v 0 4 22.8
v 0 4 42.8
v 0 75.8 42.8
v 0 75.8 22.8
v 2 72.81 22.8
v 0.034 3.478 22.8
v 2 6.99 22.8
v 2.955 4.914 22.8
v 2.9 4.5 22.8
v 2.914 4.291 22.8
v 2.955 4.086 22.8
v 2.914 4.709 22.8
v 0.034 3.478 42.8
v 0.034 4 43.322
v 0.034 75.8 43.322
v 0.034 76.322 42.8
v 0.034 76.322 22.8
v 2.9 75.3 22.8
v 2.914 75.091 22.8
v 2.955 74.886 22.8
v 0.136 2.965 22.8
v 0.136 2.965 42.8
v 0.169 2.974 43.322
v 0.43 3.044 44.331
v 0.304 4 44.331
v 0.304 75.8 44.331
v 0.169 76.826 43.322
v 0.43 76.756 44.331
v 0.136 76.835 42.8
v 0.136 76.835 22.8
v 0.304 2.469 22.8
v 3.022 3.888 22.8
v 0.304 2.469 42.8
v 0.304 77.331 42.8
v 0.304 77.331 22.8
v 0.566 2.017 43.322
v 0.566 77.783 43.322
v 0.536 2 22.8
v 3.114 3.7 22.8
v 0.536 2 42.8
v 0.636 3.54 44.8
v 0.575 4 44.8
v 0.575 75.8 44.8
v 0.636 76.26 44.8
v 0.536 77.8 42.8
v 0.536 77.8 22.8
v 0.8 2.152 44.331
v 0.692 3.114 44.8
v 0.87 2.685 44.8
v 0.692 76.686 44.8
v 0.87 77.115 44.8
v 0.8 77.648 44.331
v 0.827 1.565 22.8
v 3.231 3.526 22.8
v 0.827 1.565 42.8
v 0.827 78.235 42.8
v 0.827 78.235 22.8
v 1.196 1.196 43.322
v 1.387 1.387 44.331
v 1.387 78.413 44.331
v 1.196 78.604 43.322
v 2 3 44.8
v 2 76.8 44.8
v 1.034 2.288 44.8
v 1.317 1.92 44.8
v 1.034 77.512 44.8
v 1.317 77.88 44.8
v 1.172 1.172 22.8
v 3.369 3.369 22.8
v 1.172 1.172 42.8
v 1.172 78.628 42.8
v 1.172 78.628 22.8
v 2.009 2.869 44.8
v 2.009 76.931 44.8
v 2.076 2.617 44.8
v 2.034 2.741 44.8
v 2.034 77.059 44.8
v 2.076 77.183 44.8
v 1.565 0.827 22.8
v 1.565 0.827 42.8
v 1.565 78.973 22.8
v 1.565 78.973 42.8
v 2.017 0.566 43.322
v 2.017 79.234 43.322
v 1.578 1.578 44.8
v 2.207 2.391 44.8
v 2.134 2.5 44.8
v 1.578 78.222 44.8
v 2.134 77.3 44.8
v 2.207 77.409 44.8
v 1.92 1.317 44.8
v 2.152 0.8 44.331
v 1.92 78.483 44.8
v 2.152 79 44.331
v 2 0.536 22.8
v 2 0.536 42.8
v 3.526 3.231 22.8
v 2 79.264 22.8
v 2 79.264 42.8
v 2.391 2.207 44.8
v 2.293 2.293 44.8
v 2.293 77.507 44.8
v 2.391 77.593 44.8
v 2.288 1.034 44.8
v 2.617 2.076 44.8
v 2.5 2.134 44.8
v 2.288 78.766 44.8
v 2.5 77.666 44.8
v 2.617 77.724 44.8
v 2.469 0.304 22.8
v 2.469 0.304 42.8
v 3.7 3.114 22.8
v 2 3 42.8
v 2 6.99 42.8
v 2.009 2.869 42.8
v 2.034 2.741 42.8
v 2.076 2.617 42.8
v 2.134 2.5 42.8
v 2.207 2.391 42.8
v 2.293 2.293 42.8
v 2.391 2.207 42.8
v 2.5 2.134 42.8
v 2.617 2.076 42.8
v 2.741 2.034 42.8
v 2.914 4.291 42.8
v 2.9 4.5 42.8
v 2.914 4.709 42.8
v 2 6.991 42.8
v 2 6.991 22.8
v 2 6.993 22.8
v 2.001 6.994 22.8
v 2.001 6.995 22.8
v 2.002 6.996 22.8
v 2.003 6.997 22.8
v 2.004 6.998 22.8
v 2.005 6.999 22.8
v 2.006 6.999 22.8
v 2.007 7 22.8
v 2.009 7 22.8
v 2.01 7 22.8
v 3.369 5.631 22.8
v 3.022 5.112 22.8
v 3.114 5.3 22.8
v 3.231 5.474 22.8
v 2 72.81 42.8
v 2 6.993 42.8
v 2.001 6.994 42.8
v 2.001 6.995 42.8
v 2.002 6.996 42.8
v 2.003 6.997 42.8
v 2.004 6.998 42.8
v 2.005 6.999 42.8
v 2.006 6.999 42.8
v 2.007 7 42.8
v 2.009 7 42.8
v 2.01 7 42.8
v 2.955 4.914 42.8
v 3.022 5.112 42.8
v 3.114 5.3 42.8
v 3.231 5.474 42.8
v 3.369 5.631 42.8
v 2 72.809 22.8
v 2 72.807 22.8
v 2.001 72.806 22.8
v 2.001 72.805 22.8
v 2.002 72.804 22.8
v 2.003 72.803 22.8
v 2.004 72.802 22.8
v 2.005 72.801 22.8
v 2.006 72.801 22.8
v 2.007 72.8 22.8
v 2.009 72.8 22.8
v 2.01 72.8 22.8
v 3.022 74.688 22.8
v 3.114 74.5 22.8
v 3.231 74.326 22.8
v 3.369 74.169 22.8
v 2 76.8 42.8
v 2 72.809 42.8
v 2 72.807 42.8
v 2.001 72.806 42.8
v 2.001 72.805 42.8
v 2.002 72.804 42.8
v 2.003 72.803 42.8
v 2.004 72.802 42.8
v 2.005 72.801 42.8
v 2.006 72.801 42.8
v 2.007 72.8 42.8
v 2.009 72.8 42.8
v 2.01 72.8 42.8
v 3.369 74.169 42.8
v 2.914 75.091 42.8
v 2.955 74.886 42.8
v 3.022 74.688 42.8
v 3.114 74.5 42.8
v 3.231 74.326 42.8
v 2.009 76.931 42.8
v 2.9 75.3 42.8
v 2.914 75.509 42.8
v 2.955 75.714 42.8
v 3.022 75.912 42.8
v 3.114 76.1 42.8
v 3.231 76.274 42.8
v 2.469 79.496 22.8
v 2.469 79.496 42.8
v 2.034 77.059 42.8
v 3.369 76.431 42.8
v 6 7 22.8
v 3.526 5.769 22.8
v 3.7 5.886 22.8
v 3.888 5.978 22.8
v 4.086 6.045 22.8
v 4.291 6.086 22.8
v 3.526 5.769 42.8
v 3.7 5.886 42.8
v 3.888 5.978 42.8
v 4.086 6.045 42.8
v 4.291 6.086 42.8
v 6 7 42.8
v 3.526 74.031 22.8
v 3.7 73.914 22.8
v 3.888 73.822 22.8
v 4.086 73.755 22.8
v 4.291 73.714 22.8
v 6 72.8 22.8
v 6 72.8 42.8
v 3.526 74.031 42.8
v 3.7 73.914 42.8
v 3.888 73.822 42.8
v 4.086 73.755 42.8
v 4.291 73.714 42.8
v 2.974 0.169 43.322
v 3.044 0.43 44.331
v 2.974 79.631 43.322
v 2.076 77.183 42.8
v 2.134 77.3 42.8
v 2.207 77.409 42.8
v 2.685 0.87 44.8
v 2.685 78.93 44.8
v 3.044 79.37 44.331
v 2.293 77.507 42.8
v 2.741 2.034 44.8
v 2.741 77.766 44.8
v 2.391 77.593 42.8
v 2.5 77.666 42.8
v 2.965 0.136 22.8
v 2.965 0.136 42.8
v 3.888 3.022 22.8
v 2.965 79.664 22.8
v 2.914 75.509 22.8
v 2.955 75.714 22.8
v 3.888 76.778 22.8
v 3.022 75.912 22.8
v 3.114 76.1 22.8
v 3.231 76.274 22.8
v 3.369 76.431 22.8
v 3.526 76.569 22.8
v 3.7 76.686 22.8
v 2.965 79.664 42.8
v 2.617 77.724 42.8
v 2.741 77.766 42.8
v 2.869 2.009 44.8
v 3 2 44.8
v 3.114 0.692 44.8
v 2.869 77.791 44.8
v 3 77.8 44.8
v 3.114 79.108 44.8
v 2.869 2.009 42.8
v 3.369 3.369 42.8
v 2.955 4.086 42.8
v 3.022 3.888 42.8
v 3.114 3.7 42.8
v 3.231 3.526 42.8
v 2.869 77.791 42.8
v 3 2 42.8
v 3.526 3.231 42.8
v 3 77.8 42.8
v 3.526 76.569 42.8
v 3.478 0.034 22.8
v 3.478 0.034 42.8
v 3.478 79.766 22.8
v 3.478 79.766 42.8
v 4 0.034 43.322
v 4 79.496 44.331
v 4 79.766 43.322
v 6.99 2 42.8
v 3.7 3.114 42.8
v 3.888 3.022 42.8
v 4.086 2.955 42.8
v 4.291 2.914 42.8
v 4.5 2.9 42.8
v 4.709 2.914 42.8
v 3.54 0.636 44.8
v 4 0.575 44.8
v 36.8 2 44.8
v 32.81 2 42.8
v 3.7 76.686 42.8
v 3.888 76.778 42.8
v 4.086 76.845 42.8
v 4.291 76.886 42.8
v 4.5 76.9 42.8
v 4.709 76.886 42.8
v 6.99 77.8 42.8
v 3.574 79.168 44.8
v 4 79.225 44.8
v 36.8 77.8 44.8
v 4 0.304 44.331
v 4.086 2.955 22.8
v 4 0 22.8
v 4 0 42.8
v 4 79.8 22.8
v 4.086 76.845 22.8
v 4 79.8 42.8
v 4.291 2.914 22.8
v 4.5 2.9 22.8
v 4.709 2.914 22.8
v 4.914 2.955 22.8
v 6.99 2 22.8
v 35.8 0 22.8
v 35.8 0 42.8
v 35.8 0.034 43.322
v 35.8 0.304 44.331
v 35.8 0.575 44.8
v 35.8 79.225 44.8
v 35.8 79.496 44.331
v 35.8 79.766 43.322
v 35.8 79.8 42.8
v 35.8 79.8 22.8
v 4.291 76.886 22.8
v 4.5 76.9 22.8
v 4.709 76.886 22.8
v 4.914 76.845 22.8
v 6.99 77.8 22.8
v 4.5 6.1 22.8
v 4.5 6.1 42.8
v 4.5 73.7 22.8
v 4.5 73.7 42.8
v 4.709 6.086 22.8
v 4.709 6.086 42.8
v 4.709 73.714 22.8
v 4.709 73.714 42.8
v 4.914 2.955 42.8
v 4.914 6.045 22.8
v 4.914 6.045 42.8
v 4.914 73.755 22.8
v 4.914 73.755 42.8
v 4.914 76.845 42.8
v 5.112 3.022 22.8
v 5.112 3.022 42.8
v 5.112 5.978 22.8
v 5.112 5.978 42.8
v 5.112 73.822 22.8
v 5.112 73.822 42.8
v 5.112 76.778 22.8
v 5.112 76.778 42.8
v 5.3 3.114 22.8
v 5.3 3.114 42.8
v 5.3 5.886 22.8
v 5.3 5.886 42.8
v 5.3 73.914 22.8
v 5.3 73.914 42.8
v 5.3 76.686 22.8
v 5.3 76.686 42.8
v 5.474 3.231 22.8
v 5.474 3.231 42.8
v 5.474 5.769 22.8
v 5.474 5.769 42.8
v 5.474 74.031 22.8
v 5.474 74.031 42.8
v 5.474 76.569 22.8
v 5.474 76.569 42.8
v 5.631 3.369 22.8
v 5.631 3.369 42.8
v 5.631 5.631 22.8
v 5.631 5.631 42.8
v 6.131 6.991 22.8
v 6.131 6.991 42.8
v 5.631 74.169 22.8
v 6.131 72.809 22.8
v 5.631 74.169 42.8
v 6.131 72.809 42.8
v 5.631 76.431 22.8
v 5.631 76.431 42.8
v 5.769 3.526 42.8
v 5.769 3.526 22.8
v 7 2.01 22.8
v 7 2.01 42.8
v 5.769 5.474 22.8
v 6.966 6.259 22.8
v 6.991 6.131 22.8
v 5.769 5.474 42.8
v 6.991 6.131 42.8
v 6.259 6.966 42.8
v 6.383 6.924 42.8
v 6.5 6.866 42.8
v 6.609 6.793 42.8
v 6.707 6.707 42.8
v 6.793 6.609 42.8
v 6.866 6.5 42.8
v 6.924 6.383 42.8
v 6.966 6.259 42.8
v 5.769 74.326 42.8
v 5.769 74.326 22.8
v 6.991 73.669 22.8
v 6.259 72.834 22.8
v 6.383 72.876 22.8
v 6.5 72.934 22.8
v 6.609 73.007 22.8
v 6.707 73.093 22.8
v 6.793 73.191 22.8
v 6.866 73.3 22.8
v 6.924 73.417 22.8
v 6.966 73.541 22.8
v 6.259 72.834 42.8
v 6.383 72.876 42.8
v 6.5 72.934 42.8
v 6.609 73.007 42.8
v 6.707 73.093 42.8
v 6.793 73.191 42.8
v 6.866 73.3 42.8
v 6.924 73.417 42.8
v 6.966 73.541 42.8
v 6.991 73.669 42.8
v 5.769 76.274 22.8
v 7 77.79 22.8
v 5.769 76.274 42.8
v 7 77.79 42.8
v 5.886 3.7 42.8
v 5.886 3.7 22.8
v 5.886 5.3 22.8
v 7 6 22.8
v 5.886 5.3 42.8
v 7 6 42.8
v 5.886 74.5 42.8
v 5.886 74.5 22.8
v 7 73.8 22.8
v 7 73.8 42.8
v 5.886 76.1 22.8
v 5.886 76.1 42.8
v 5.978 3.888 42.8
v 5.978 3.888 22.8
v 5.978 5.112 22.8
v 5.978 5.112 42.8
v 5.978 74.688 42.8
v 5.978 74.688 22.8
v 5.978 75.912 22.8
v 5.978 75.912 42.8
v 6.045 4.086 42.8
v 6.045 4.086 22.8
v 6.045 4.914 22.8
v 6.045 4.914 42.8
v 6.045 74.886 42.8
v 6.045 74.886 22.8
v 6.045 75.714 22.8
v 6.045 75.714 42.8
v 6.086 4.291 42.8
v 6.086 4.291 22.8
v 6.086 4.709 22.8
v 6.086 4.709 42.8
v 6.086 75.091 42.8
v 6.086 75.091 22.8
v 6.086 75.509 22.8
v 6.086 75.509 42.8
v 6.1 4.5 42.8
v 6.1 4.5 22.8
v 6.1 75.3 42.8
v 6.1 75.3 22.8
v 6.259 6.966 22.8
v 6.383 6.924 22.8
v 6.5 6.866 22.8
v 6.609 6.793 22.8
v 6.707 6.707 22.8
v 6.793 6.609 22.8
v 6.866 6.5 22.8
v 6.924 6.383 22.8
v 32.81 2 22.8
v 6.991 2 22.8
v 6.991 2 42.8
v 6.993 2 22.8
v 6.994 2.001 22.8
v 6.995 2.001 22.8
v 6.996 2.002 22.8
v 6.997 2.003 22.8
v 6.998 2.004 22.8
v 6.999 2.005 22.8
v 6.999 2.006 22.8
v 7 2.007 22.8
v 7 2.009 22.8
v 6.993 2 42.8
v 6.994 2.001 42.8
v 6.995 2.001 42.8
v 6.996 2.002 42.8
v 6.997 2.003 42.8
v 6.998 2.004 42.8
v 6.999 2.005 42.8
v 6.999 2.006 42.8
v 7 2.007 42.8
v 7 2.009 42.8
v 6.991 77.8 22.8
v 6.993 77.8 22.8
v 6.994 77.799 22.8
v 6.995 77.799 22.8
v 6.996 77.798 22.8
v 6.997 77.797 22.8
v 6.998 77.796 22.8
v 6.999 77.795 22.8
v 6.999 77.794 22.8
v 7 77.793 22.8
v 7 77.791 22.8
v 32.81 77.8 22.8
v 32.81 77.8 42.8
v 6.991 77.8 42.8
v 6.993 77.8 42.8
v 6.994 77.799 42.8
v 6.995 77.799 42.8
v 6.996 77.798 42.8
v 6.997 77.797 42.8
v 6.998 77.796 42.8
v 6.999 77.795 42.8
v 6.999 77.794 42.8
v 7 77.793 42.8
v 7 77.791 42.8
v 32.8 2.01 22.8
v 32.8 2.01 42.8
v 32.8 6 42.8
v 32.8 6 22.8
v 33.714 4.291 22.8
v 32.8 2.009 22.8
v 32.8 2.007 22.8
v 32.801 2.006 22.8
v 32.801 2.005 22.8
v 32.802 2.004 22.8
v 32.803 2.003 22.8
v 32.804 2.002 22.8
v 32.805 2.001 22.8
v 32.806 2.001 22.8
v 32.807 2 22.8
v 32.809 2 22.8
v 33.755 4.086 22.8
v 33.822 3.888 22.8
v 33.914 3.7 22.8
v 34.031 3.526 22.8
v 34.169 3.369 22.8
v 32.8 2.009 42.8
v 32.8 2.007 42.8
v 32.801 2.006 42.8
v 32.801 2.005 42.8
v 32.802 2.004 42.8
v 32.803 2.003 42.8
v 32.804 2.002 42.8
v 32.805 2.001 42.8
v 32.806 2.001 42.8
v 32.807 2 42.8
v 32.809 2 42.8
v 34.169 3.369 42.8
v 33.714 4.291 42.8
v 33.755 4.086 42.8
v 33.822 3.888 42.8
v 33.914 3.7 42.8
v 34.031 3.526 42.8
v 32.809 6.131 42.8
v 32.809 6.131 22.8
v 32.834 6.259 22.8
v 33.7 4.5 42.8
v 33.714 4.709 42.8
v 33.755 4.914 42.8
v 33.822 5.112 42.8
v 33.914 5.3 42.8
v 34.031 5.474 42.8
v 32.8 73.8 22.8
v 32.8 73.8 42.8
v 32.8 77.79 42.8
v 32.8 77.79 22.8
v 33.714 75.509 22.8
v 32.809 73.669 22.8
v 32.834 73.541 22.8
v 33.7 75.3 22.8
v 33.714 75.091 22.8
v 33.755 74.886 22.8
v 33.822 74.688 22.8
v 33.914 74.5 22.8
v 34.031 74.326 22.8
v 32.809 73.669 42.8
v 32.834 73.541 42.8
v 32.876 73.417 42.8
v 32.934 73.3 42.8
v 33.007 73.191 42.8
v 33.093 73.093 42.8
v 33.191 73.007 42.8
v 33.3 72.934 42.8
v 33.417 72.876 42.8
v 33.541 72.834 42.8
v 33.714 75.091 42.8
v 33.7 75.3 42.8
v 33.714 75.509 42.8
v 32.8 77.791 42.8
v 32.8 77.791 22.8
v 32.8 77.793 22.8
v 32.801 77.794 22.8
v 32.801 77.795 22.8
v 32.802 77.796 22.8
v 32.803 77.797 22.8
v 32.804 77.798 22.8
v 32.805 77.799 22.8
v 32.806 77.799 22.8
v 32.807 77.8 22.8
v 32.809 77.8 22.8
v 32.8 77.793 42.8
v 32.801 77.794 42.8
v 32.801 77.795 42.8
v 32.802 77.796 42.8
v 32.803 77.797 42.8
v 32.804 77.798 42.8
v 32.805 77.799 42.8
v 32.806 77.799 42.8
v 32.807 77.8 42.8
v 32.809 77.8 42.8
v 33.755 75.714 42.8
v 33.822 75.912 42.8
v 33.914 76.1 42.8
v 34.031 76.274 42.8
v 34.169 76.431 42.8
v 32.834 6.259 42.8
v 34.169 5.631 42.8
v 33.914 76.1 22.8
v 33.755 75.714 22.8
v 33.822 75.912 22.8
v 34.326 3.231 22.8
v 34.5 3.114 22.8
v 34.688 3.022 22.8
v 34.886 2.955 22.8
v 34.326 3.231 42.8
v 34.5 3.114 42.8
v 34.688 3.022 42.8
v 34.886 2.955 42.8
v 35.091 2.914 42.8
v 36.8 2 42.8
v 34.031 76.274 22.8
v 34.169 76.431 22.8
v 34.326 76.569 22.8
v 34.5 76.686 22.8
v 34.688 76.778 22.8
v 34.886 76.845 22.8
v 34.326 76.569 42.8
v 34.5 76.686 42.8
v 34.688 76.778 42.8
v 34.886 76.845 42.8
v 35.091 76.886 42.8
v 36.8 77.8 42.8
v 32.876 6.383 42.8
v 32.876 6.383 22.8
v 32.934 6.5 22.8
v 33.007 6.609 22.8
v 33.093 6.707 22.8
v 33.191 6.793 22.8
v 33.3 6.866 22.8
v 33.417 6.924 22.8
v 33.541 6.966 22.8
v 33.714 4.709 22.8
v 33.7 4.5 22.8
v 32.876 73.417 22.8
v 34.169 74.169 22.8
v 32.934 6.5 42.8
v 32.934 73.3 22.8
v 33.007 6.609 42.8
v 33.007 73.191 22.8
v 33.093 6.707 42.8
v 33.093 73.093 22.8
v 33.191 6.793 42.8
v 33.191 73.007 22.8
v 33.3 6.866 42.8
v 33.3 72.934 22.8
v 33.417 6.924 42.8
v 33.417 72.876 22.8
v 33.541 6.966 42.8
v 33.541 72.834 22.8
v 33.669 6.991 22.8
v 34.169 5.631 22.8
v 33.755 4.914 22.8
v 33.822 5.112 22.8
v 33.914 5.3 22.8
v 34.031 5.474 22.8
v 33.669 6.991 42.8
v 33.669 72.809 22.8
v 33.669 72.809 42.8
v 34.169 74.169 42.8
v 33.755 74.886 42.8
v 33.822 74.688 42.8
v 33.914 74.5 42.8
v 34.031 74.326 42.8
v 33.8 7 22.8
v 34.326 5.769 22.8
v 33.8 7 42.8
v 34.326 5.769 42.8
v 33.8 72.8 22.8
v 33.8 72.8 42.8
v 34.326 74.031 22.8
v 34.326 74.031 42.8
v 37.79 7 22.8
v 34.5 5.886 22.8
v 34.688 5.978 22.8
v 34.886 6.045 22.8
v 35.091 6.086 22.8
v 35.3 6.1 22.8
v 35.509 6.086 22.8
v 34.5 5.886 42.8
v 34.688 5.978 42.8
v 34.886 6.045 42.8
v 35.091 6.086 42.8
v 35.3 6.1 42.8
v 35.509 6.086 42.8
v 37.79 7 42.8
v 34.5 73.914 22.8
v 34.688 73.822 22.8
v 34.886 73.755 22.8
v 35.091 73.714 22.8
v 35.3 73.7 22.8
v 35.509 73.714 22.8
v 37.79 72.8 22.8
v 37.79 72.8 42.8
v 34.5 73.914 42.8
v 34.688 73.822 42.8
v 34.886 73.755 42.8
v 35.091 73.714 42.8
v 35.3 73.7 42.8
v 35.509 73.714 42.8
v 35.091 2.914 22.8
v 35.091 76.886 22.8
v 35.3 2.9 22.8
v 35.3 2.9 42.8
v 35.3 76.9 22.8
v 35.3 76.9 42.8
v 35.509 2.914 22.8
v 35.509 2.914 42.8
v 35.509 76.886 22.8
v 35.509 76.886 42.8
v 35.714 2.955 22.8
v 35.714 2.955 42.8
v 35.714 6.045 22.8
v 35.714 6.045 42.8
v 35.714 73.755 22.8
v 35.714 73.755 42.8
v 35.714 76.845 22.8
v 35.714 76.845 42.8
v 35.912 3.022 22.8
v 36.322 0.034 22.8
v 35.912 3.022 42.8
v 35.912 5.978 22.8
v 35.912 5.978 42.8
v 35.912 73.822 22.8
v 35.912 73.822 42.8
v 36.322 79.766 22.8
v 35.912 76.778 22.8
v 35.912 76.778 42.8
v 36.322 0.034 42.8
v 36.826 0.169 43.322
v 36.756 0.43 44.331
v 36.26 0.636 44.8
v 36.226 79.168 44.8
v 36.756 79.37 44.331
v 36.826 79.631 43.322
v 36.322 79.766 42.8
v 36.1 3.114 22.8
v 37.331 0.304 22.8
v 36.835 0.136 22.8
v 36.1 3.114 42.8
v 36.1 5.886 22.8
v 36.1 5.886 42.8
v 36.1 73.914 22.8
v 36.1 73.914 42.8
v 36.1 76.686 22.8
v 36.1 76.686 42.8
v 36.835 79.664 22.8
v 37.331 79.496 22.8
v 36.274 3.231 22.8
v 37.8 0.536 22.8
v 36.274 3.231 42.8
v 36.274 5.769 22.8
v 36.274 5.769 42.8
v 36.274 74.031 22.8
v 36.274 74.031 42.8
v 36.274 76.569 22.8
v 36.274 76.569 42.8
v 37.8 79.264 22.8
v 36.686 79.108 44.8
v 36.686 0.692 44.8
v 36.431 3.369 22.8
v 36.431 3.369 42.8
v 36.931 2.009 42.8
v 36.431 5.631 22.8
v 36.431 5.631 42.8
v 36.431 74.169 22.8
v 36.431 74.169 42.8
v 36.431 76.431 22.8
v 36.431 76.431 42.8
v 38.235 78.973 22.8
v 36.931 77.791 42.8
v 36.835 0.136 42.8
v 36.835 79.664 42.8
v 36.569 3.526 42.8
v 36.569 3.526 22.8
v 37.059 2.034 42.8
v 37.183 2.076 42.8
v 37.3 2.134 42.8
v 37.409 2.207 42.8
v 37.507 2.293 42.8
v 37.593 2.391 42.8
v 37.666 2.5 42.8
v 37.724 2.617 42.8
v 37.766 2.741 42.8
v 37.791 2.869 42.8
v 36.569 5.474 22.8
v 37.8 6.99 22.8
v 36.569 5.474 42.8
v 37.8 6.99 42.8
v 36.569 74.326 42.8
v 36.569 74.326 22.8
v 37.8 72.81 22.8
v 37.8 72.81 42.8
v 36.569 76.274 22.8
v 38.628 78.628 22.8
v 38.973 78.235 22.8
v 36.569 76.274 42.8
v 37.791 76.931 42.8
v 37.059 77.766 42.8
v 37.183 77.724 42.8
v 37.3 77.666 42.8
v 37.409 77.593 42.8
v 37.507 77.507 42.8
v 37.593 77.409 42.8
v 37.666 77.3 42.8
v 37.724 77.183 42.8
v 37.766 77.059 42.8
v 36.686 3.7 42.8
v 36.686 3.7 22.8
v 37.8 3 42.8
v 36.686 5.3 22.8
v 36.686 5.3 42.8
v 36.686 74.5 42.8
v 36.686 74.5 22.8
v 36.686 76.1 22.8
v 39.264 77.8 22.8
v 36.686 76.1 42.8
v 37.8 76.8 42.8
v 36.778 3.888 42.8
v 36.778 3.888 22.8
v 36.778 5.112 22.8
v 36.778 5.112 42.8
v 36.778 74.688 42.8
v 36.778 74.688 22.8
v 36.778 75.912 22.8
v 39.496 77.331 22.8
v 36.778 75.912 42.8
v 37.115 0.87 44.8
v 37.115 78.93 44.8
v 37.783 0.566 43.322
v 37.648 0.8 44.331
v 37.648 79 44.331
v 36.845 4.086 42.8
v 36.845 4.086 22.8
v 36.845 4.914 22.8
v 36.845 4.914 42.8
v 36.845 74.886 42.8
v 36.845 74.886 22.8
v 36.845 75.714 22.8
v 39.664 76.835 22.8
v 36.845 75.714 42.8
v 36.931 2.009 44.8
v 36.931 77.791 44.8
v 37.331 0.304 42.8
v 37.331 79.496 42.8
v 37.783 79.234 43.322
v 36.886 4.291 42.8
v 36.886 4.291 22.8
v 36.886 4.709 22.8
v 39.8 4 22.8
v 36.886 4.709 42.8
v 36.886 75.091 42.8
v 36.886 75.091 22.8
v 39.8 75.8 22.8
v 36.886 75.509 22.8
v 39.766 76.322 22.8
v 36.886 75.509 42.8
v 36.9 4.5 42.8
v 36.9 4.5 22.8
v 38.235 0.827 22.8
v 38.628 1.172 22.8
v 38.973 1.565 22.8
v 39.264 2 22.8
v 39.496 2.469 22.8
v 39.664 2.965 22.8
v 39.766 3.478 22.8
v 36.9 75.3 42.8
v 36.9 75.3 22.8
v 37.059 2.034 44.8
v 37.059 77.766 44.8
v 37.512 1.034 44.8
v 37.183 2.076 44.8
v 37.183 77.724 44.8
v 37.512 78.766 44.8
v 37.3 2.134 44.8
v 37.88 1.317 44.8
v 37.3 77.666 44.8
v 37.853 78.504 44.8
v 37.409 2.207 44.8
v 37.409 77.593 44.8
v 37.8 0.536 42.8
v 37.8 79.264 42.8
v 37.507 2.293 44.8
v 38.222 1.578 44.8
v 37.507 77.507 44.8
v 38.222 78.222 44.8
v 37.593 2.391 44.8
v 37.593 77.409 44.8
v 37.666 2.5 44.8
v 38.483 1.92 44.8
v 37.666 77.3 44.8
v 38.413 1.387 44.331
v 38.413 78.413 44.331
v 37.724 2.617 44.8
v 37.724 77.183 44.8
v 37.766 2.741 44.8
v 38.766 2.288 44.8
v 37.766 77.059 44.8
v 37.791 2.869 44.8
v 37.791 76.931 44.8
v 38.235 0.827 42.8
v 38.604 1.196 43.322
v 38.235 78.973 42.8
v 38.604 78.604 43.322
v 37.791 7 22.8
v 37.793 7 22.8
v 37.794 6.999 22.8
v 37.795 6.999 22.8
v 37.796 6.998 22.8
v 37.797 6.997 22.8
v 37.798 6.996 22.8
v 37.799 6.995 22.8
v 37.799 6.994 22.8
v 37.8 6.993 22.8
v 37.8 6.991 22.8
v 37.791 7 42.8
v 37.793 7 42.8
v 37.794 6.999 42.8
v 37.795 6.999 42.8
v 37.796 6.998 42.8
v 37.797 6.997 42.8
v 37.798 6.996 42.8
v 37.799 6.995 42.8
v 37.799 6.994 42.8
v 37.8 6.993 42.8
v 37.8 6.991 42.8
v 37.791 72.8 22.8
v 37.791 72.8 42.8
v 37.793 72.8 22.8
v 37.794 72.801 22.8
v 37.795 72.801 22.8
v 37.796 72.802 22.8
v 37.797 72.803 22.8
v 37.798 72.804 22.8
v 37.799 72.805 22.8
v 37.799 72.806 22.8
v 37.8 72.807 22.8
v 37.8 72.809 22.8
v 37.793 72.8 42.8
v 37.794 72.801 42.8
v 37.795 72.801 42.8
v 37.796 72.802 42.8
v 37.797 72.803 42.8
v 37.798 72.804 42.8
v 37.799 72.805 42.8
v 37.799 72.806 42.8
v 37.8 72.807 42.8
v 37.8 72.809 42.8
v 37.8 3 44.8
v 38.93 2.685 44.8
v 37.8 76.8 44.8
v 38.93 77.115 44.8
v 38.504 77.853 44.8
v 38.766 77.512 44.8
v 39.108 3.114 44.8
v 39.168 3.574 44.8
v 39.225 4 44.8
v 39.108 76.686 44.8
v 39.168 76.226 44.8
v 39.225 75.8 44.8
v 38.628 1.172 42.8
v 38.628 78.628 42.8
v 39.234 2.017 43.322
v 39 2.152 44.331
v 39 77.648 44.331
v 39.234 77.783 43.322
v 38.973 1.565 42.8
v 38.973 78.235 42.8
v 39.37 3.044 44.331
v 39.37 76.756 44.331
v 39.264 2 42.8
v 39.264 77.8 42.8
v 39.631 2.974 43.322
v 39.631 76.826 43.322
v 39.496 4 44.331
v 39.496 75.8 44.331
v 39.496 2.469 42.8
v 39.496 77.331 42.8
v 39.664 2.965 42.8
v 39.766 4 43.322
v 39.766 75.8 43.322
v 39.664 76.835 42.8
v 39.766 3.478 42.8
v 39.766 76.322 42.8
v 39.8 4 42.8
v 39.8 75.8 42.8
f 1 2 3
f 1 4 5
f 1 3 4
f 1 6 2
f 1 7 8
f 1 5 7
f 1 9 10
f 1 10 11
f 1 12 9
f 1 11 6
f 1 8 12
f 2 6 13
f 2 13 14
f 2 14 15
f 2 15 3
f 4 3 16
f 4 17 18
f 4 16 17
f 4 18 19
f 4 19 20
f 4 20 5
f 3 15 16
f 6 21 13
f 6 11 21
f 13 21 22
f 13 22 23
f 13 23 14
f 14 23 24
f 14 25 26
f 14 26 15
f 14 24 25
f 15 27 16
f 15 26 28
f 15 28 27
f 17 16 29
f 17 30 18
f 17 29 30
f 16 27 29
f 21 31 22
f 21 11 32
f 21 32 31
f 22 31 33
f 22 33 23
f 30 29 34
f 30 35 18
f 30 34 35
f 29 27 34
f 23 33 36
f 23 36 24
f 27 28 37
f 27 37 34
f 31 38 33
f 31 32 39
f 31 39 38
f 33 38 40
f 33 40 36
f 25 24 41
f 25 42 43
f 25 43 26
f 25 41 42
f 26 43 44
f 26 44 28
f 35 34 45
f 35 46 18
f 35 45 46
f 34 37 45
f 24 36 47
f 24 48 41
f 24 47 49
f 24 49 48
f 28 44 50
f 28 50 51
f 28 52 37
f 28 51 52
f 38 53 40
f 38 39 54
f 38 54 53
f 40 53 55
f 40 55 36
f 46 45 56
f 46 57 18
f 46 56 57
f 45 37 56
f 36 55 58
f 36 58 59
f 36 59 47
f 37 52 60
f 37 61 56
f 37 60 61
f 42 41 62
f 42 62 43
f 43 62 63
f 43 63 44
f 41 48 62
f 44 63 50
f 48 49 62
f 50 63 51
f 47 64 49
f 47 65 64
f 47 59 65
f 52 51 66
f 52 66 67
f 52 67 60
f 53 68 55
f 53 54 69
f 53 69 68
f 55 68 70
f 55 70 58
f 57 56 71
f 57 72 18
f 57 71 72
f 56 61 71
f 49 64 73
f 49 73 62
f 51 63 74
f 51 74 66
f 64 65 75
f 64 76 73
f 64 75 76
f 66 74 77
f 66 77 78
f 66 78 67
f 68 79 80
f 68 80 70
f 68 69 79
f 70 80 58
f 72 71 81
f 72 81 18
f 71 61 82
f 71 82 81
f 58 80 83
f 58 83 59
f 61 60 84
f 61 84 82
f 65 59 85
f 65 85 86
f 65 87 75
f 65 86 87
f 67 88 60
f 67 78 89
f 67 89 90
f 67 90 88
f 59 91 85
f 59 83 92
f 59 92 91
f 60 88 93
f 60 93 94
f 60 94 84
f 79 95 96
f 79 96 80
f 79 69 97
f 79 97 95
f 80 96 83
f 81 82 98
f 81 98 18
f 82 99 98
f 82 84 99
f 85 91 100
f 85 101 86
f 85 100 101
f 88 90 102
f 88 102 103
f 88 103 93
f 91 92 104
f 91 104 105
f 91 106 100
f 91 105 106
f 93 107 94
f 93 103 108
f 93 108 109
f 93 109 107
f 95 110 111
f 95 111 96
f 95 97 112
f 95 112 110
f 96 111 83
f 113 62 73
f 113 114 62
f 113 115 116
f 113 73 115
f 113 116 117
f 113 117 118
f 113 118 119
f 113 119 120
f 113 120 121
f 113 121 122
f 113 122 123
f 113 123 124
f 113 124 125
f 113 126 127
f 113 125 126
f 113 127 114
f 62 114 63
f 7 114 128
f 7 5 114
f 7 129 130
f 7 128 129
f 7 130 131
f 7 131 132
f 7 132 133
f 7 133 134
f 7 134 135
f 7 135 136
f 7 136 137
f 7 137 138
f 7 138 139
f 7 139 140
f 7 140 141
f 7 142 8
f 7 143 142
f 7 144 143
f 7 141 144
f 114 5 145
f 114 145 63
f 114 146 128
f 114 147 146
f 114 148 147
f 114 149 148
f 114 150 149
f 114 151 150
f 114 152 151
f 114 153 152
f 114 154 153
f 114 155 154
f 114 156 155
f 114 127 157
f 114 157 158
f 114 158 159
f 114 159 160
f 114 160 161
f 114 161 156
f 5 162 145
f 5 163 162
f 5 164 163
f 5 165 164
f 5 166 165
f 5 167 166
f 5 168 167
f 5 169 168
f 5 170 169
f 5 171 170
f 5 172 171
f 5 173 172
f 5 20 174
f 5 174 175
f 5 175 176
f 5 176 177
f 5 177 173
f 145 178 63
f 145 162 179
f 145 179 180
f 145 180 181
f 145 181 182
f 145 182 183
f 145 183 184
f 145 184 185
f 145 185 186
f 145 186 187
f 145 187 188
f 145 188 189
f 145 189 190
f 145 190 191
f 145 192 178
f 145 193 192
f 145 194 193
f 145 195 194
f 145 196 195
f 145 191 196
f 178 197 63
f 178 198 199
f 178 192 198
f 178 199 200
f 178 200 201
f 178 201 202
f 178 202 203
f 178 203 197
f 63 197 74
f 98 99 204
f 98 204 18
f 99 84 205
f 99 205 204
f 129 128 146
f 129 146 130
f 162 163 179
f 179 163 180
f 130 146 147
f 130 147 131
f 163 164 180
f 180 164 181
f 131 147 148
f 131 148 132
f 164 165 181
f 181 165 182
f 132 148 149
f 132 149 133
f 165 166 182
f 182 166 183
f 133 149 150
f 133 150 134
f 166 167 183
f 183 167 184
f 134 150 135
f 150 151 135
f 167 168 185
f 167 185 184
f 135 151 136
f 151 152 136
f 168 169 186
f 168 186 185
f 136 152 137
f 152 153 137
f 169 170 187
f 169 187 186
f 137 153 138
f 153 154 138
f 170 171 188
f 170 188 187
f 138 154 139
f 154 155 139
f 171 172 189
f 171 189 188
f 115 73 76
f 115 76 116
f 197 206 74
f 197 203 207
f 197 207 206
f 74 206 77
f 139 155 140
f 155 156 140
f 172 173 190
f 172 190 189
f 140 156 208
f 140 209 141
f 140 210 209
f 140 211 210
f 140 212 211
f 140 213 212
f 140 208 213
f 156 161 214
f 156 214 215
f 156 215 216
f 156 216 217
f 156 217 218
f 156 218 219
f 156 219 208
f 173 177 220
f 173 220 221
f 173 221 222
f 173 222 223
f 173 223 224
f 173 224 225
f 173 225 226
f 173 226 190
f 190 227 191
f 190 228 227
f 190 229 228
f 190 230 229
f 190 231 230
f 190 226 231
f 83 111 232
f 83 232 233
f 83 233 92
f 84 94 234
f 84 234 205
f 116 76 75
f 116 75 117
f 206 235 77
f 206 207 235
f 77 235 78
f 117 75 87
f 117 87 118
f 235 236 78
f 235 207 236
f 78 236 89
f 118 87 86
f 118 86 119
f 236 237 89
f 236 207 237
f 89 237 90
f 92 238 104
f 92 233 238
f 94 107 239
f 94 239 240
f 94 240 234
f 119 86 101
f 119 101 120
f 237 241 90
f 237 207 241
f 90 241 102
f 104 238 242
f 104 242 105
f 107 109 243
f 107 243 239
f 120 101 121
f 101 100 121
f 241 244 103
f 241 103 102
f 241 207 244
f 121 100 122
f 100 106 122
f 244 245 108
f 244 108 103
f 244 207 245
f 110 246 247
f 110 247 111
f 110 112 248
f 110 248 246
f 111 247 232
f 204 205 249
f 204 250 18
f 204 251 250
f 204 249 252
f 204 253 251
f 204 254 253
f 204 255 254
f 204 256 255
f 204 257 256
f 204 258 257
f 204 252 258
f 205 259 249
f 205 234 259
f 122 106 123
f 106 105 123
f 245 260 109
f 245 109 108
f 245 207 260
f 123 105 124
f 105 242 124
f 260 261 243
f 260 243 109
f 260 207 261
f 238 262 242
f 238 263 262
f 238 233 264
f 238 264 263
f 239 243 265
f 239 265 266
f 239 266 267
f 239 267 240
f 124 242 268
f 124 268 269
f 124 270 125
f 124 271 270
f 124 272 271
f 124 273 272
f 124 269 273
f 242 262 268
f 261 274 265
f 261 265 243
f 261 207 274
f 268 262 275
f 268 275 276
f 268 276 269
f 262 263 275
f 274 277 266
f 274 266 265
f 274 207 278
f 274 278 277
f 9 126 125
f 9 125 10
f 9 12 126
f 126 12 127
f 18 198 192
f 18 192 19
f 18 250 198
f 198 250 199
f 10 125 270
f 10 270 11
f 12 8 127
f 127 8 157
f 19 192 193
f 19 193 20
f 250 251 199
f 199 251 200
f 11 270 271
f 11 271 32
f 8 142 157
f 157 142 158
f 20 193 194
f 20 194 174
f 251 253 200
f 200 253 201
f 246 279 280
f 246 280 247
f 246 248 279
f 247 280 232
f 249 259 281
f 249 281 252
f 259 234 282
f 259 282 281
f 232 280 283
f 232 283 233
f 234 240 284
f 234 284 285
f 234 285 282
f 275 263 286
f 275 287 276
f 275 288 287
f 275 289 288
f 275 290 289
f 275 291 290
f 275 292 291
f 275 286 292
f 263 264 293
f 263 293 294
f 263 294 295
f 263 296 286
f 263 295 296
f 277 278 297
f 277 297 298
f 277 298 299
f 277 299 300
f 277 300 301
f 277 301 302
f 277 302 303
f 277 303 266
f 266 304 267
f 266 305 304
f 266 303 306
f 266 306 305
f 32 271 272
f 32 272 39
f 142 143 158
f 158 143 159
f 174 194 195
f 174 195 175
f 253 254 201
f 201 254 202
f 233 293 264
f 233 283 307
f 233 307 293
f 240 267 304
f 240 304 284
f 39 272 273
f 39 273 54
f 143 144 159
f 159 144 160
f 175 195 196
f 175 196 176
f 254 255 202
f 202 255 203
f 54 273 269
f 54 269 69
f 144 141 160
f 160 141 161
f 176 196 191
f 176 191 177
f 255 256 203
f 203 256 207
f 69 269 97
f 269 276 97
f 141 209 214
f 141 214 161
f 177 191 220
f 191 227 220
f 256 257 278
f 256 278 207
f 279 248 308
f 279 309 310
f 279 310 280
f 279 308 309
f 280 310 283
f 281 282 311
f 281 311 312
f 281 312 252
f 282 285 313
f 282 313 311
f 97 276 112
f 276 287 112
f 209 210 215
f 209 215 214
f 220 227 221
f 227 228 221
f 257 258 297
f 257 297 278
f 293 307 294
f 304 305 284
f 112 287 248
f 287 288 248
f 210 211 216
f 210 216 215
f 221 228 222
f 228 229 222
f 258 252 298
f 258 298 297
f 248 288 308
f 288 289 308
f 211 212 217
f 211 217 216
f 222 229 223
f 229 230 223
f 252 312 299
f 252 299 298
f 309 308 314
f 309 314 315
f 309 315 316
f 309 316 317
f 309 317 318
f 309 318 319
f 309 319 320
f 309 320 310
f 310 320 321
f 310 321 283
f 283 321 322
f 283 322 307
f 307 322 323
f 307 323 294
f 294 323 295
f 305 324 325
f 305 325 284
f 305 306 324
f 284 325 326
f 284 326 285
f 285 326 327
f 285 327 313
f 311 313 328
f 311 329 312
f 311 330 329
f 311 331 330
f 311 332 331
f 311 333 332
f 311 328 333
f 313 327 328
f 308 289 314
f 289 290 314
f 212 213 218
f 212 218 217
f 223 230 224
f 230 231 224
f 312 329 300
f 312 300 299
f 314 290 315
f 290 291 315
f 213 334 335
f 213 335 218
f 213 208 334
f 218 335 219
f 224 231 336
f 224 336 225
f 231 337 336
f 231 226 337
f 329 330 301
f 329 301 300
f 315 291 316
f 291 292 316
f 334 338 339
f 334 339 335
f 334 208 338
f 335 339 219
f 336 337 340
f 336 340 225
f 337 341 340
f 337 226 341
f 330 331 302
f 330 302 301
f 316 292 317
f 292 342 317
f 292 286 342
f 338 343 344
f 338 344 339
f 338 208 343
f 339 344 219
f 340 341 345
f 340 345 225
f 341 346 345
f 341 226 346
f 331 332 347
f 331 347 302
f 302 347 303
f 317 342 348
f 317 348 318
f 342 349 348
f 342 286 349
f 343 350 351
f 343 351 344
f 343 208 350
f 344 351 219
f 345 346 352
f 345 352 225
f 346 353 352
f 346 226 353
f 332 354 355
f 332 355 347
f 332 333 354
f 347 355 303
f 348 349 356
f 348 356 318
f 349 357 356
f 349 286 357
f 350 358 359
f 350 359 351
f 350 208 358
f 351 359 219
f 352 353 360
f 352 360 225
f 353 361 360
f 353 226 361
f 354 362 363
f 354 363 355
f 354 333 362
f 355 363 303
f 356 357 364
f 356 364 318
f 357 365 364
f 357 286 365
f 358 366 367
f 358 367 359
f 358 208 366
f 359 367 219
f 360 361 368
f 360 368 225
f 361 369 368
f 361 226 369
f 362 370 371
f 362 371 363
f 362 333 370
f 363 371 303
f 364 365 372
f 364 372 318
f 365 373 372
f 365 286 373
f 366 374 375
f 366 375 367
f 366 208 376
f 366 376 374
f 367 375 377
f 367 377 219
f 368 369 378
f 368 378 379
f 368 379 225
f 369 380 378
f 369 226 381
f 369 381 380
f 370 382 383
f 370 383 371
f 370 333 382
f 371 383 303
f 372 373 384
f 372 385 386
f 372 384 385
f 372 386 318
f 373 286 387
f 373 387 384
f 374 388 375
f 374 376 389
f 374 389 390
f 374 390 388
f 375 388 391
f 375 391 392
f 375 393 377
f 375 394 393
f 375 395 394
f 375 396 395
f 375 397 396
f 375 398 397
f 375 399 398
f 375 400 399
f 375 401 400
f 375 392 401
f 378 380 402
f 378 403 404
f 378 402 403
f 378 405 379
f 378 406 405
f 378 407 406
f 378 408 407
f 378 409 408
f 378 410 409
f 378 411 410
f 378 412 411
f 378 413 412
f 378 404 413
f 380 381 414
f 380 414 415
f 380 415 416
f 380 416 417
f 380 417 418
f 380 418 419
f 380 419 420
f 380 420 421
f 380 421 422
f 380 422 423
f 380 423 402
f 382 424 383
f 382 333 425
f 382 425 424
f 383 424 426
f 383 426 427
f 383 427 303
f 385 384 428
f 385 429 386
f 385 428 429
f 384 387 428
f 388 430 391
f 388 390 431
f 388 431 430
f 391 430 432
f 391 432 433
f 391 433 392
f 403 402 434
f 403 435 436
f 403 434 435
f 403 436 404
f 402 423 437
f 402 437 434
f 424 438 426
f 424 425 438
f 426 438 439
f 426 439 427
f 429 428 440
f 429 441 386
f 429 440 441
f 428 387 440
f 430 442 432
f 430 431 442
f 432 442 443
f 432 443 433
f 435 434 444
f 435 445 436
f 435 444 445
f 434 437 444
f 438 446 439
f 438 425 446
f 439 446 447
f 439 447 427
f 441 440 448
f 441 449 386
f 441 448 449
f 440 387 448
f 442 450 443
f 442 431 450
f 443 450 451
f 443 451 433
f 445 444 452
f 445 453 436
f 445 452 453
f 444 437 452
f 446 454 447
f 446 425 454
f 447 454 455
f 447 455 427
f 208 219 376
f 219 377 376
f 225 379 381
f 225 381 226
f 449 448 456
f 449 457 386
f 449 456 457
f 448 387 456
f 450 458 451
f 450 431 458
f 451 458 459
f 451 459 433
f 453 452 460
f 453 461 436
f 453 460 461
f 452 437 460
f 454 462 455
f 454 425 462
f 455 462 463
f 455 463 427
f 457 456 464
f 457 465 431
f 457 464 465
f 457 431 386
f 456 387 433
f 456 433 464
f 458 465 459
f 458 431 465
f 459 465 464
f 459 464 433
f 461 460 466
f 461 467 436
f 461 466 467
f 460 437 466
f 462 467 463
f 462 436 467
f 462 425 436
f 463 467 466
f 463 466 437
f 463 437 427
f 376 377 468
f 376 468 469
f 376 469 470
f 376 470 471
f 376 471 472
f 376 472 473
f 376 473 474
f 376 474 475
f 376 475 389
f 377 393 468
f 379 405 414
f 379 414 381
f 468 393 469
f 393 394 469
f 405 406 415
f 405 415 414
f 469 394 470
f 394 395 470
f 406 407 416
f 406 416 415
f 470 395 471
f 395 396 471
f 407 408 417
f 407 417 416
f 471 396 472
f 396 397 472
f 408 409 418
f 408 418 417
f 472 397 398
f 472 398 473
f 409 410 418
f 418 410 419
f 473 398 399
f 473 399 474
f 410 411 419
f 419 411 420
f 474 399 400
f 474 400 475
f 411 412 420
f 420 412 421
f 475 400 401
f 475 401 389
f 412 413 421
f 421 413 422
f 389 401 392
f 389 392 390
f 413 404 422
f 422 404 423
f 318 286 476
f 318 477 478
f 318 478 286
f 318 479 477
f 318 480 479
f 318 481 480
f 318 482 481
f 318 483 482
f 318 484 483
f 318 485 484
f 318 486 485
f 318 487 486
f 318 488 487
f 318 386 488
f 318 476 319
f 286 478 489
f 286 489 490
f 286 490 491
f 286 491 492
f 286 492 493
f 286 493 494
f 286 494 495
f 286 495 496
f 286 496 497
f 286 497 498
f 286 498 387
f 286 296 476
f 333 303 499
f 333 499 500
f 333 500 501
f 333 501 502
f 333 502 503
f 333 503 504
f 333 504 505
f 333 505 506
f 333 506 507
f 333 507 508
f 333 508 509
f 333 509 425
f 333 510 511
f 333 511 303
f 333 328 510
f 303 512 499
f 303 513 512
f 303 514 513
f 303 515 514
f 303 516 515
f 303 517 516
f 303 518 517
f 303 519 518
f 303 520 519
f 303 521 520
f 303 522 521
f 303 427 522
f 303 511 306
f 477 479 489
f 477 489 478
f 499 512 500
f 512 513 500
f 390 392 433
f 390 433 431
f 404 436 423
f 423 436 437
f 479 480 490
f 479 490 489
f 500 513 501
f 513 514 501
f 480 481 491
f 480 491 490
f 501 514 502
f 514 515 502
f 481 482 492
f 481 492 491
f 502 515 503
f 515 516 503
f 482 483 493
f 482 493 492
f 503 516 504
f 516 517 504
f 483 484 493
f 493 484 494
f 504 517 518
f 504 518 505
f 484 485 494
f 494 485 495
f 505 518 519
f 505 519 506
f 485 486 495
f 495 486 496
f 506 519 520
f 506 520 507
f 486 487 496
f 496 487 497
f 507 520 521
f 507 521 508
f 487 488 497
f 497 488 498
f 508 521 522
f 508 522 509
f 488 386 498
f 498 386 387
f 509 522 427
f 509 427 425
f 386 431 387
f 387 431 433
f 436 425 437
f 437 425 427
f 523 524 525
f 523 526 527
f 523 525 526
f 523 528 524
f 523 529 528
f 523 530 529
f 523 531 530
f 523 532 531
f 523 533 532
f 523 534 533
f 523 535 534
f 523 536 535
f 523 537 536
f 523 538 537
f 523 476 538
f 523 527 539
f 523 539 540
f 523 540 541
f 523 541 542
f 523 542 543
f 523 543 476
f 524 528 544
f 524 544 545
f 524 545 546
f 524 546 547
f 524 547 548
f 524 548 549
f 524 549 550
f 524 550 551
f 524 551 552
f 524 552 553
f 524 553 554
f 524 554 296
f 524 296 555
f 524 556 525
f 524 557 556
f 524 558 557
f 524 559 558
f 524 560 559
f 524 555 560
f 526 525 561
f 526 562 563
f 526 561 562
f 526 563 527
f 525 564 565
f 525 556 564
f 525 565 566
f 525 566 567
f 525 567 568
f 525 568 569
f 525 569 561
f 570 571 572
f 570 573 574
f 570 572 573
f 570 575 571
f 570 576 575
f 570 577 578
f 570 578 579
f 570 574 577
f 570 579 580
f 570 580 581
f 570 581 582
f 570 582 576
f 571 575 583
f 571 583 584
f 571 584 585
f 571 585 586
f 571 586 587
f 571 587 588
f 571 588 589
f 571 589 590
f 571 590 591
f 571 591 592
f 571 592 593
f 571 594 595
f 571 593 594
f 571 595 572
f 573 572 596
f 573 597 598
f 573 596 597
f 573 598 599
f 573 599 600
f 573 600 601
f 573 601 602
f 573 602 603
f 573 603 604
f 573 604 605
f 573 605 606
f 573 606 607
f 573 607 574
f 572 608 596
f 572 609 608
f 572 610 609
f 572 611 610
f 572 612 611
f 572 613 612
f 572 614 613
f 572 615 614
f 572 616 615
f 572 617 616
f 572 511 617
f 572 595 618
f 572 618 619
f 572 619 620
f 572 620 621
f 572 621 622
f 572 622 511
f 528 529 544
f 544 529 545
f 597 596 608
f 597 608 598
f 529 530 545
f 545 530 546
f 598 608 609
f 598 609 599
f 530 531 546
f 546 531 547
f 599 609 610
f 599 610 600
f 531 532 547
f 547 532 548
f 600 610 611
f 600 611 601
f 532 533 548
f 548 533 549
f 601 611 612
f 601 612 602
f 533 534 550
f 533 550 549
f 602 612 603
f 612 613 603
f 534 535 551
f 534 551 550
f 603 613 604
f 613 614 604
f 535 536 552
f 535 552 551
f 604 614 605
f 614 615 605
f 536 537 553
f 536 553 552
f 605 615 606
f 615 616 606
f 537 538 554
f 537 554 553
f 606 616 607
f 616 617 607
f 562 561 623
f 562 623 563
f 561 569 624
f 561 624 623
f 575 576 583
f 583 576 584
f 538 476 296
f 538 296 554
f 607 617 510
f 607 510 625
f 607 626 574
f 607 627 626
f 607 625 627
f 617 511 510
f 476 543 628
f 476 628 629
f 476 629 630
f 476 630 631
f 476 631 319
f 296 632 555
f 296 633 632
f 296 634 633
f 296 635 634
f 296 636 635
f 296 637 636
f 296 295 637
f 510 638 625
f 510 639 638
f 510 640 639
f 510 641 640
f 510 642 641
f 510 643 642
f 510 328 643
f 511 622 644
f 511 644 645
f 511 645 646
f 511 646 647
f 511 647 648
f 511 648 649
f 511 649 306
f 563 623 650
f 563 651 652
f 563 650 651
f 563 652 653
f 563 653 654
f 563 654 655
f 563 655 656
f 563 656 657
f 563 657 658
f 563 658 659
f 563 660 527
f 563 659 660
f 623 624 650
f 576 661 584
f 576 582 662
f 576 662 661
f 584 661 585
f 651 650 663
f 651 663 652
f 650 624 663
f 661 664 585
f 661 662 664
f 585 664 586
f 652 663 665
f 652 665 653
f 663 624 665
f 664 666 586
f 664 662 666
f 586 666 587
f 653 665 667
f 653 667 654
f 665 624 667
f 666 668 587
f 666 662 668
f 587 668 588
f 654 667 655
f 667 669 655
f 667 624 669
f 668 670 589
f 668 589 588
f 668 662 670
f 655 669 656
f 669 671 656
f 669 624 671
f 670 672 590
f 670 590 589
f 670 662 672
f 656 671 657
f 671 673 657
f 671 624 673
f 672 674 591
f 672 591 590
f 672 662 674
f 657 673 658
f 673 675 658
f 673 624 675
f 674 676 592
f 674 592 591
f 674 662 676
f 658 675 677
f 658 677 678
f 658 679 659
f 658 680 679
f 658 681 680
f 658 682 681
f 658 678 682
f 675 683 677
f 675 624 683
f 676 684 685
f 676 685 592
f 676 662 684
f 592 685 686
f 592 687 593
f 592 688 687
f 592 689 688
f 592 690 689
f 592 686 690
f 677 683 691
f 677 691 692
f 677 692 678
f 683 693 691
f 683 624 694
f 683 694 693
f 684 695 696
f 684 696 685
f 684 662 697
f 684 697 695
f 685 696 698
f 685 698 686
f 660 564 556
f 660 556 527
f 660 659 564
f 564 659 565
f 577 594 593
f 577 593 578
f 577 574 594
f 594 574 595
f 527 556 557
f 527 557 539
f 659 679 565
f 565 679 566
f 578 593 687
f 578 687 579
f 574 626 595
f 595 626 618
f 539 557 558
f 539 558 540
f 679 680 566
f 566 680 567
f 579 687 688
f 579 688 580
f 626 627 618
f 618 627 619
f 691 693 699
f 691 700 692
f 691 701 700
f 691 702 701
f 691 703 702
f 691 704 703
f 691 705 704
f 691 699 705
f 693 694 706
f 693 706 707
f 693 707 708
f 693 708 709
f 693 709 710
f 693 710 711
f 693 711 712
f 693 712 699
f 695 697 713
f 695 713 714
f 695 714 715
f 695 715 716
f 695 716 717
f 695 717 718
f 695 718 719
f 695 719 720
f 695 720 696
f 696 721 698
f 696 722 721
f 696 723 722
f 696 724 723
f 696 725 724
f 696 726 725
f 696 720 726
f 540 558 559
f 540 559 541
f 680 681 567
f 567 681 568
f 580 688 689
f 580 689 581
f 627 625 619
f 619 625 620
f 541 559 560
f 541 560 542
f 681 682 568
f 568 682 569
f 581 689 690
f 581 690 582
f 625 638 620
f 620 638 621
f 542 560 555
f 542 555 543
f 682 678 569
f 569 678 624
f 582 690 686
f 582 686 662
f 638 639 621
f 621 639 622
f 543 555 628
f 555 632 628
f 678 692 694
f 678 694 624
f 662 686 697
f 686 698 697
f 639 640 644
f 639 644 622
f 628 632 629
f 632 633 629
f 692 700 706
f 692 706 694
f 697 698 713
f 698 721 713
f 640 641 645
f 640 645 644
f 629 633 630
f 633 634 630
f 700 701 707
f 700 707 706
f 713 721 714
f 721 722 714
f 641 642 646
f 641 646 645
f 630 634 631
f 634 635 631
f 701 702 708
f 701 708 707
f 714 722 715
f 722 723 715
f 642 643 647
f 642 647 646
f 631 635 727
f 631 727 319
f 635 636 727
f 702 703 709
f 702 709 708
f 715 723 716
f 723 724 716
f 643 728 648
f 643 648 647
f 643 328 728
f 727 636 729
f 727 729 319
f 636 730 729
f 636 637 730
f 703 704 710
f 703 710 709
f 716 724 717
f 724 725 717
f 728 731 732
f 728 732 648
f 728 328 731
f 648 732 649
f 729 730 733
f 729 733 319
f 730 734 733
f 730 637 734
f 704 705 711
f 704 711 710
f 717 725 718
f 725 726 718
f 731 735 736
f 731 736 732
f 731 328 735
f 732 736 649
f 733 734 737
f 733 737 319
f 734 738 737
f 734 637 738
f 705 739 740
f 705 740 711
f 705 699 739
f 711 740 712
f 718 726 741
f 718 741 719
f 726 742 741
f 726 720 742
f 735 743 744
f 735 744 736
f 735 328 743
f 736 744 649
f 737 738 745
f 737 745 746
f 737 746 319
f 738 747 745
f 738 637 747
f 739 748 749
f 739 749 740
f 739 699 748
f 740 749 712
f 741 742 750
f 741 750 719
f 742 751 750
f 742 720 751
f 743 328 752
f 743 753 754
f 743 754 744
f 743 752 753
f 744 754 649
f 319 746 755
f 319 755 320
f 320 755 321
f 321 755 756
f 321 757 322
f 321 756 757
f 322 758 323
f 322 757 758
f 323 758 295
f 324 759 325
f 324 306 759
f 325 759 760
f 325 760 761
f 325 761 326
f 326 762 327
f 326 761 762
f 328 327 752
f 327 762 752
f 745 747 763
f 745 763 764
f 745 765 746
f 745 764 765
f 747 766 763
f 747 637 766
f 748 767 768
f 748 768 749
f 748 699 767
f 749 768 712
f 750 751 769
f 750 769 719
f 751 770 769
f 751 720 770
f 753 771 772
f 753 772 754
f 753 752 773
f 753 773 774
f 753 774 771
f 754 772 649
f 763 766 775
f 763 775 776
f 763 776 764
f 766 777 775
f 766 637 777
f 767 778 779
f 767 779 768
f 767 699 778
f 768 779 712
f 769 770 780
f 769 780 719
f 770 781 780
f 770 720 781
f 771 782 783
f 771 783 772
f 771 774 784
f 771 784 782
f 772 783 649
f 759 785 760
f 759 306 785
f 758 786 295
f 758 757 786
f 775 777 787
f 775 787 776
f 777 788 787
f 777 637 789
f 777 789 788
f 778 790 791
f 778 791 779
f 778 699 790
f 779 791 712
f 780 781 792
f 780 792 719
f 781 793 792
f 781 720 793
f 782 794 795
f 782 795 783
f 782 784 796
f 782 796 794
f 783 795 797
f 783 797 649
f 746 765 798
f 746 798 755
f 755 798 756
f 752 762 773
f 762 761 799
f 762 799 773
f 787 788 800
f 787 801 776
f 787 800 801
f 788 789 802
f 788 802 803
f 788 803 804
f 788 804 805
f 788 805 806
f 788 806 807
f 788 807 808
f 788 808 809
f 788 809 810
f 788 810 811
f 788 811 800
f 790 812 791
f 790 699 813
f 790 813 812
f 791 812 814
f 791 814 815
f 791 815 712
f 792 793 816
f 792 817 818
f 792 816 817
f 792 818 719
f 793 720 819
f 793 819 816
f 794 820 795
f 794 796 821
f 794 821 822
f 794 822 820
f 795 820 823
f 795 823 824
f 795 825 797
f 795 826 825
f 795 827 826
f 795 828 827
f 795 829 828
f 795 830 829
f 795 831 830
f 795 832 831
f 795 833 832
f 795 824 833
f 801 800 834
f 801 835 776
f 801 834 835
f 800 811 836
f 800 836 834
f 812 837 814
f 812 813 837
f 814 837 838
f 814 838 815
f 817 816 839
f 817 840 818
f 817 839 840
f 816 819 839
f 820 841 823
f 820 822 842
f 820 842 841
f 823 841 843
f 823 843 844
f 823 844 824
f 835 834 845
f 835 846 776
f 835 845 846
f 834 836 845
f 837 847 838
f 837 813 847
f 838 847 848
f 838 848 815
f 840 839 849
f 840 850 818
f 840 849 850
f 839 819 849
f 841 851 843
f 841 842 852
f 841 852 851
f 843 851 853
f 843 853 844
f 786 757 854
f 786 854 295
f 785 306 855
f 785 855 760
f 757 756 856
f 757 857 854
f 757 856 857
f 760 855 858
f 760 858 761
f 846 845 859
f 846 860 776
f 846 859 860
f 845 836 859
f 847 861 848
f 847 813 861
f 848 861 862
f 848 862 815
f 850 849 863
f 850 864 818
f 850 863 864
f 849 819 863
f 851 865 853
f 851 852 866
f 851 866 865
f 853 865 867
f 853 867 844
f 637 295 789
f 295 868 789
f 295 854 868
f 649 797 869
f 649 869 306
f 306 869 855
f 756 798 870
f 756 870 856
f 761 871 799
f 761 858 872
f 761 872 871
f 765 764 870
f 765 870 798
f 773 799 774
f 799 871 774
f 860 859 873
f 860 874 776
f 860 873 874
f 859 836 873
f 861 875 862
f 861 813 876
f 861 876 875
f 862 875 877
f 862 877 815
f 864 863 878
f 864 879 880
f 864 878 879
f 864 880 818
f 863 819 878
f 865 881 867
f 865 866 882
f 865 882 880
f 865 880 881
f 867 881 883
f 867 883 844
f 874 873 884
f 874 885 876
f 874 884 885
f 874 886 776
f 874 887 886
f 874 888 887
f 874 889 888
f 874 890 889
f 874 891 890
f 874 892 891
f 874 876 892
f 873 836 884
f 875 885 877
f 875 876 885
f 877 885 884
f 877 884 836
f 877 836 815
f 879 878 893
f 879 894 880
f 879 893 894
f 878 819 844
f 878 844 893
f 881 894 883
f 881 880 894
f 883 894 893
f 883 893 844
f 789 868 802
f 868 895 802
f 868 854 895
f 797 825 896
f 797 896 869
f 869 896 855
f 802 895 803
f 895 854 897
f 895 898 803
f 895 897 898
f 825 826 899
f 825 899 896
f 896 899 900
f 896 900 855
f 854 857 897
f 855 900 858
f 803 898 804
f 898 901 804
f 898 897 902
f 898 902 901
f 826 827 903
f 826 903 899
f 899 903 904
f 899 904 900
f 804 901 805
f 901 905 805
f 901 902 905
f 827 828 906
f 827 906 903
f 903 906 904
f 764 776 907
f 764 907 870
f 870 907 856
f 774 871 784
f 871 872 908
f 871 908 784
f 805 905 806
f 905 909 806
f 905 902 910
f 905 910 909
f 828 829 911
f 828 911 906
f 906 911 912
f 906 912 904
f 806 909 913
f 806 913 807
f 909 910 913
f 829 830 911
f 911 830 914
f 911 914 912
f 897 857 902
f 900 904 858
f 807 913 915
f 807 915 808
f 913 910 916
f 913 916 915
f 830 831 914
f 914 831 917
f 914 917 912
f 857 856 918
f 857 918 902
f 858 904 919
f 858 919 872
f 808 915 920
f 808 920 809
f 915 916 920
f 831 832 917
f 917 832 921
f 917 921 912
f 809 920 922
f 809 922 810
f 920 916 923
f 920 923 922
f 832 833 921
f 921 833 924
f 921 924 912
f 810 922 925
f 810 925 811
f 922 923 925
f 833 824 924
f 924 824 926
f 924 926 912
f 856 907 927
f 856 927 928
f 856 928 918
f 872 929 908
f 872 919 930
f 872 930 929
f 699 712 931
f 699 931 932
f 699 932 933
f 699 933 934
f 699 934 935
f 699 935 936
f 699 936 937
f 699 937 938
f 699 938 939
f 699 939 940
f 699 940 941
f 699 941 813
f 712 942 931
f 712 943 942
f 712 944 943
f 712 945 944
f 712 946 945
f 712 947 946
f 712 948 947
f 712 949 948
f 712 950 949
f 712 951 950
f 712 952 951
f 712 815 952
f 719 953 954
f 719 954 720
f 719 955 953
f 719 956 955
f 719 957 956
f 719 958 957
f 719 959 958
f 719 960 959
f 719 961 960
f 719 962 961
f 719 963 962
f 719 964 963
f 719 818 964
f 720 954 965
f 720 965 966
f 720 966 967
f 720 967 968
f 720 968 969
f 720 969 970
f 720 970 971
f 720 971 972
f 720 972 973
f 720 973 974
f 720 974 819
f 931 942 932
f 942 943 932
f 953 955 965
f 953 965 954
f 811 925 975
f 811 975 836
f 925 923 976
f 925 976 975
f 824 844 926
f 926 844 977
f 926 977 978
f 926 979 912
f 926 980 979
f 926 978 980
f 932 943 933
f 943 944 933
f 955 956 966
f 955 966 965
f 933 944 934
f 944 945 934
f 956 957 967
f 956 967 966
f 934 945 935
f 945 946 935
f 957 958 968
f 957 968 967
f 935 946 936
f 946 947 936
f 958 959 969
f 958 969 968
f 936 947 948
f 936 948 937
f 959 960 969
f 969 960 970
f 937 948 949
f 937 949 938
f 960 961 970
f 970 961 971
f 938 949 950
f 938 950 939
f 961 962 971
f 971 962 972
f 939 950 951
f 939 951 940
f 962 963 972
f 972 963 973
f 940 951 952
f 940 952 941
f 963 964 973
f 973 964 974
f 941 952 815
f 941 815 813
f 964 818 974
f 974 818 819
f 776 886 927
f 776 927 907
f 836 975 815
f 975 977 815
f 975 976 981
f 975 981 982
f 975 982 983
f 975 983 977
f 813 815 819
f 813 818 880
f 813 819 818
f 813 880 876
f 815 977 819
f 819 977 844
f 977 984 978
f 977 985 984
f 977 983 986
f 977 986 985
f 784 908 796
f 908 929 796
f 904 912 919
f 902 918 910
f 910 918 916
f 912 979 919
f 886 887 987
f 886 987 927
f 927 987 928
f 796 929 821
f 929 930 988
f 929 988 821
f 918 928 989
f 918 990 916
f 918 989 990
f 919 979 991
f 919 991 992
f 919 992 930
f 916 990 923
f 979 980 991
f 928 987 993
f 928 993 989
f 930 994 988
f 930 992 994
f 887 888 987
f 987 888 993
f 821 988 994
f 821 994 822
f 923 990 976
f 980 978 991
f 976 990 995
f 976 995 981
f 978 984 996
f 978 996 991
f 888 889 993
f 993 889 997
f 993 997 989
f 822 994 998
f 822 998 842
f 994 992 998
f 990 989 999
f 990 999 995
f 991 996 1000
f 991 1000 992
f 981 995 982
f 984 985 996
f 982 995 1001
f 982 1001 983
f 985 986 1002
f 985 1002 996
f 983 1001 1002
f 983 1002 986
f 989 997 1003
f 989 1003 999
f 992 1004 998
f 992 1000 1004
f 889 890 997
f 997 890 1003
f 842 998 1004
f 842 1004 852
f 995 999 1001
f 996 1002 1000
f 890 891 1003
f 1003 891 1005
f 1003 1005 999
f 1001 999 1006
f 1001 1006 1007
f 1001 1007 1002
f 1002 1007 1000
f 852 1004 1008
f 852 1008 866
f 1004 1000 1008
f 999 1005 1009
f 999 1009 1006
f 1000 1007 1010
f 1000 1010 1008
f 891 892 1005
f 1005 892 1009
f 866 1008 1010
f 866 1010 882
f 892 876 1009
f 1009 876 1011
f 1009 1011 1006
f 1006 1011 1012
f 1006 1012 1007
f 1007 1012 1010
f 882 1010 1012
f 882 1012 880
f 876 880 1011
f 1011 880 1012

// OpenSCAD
// Dilder Top Cover v3 — open border frame with rounded inner corners for flush plate seating
//
// No dome, no floor — just the perimeter wall ring + 4 corner pillar posts.
// Solid border all around (no wire notch).
// Inner corners and countersink pocket are rounded to match the windowed plate's corner radius,
// allowing it to slide in flush at the pillar junctions.
//
// Export:
//   openscad -o top-cover-v3.3mf top-cover-v3.scad

$fn = 48;

// ---- Board (Olimex ESP32-S3-DevKit-Lipo) ----
board_len      = 56;
board_wid      = 28;
antenna_proj   = 6;

// ---- Waveshare 2.13" display ----
disp_len       = 65;
disp_wid       = 30;
disp_thk       = 5;

// ---- 1000 mAh battery ----
bat_len        = 52;
bat_wid        = 35;

// ---- Enclosure geometry ----
wall_thk       = 2;
plate_thk      = 2;
pillar         = 5;
slop           = 0.4;
bat_chamber_h  = 6;
disp_clear     = 1;
board_thk      = 1.6;
wroom_h        = 3.2;
top_gap        = 20;       // +15mm height

screw_clr      = 3.2;

// ---- Rounding ----
case_corner_r  = 4;
plate_corner_r = 1;       // must match windowed plate's corner radius
top_edge_r     = 2;       // top edge bullnose radius

// ---- Z layout ----
z_base_top     = plate_thk;
z_mid_bot      = z_base_top + bat_chamber_h;
z_mid_top      = z_mid_bot + plate_thk;
z_board_bot    = z_mid_top;
z_board_top    = z_board_bot + board_thk;
z_wroom_top    = z_board_top + wroom_h;
z_disp_bot     = z_wroom_top + disp_clear;
z_disp_top     = z_disp_bot + disp_thk;
base_wall_top  = z_disp_top + plate_thk;
z_cover_bot    = base_wall_top;
cover_h        = plate_thk + top_gap;

// ---- XY layout ----
inner_wid      = max(board_wid, disp_wid, bat_wid) + 2 * slop;
inner_len      = max(board_len + antenna_proj, disp_len + 2 * pillar, bat_len) + 2 * slop;
outer_wid      = inner_wid + 2 * wall_thk;
outer_len      = inner_len + 2 * wall_thk;

pillar_xy = [
    [wall_thk,                             wall_thk                            ],
    [outer_wid - wall_thk - pillar,        wall_thk                            ],
    [wall_thk,                             outer_len - wall_thk - pillar       ],
    [outer_wid - wall_thk - pillar,        outer_len - wall_thk - pillar       ],
];


// ============== SHARED ==============

module rounded_v_box(w, l, h, r, fn = 48) {
    hull() {
        for (x = [r, w - r])
            for (y = [r, l - r])
                translate([x, y, 0])
                    cylinder(r = r, h = h, $fn = fn);
    }
}

// Pillar with only one corner rounded (the exposed inner corner).
// round_x/round_y: 0=near edge, 1=far edge — selects which corner gets the radius.
module pillar_one_round(w, l, h, r, round_x, round_y) {
    tiny = 0.01;
    hull() {
        for (ix = [0, 1])
            for (iy = [0, 1]) {
                cr = (ix == round_x && iy == round_y) ? r : tiny;
                translate([cr + ix * (w - 2*cr), cr + iy * (l - 2*cr), 0])
                    cylinder(r = cr, h = h, $fn = 48);
            }
    }
}


// ============== TOP COVER v3 ==============

module top_cover() {
    translate([0, 0, z_cover_bot])
    difference() {
        union() {
            // Outer wall ring — rounded outer edges, bullnose top, rounded inner edges
            difference() {
                // Outer shell with rounded top edge
                intersection() {
                    hull() {
                        for (x = [case_corner_r, outer_wid - case_corner_r])
                            for (y = [case_corner_r, outer_len - case_corner_r]) {
                                translate([x, y, 0])
                                    cylinder(r = case_corner_r, h = cover_h - top_edge_r, $fn = 48);
                                translate([x, y, cover_h - top_edge_r])
                                    sphere(r = case_corner_r, $fn = 24);
                            }
                    }
                    // Clip bottom flat
                    cube([outer_wid, outer_len, cover_h]);
                }
                // Inner cavity with rounded corners
                translate([wall_thk, wall_thk, -0.1])
                    rounded_v_box(inner_wid, inner_len, cover_h + 0.2, plate_corner_r);
            }

            // Pillar posts — only the exposed inner corner is rounded
            for (p = pillar_xy) {
                rx = (p[0] < outer_wid/2) ? 1 : 0;
                ry = (p[1] < outer_len/2) ? 1 : 0;
                translate([p[0], p[1], 0])
                    pillar_one_round(pillar, pillar, cover_h, plate_corner_r, rx, ry);
            }
        }

        // Countersink — single rounded pocket matching plate footprint
        // Cuts into pillar tops with rounded inner corners so plate seats flush
        translate([wall_thk, wall_thk, cover_h - plate_thk])
            rounded_v_box(inner_wid, inner_len, plate_thk + 0.1, plate_corner_r);

        // Screw clearance holes through pillars
        for (p = pillar_xy) {
            cx = p[0] + pillar/2;
            cy = p[1] + pillar/2;
            translate([cx, cy, -0.1])
                cylinder(h = cover_h + 0.2, d = screw_clr);
        }
    }
}

top_cover();
